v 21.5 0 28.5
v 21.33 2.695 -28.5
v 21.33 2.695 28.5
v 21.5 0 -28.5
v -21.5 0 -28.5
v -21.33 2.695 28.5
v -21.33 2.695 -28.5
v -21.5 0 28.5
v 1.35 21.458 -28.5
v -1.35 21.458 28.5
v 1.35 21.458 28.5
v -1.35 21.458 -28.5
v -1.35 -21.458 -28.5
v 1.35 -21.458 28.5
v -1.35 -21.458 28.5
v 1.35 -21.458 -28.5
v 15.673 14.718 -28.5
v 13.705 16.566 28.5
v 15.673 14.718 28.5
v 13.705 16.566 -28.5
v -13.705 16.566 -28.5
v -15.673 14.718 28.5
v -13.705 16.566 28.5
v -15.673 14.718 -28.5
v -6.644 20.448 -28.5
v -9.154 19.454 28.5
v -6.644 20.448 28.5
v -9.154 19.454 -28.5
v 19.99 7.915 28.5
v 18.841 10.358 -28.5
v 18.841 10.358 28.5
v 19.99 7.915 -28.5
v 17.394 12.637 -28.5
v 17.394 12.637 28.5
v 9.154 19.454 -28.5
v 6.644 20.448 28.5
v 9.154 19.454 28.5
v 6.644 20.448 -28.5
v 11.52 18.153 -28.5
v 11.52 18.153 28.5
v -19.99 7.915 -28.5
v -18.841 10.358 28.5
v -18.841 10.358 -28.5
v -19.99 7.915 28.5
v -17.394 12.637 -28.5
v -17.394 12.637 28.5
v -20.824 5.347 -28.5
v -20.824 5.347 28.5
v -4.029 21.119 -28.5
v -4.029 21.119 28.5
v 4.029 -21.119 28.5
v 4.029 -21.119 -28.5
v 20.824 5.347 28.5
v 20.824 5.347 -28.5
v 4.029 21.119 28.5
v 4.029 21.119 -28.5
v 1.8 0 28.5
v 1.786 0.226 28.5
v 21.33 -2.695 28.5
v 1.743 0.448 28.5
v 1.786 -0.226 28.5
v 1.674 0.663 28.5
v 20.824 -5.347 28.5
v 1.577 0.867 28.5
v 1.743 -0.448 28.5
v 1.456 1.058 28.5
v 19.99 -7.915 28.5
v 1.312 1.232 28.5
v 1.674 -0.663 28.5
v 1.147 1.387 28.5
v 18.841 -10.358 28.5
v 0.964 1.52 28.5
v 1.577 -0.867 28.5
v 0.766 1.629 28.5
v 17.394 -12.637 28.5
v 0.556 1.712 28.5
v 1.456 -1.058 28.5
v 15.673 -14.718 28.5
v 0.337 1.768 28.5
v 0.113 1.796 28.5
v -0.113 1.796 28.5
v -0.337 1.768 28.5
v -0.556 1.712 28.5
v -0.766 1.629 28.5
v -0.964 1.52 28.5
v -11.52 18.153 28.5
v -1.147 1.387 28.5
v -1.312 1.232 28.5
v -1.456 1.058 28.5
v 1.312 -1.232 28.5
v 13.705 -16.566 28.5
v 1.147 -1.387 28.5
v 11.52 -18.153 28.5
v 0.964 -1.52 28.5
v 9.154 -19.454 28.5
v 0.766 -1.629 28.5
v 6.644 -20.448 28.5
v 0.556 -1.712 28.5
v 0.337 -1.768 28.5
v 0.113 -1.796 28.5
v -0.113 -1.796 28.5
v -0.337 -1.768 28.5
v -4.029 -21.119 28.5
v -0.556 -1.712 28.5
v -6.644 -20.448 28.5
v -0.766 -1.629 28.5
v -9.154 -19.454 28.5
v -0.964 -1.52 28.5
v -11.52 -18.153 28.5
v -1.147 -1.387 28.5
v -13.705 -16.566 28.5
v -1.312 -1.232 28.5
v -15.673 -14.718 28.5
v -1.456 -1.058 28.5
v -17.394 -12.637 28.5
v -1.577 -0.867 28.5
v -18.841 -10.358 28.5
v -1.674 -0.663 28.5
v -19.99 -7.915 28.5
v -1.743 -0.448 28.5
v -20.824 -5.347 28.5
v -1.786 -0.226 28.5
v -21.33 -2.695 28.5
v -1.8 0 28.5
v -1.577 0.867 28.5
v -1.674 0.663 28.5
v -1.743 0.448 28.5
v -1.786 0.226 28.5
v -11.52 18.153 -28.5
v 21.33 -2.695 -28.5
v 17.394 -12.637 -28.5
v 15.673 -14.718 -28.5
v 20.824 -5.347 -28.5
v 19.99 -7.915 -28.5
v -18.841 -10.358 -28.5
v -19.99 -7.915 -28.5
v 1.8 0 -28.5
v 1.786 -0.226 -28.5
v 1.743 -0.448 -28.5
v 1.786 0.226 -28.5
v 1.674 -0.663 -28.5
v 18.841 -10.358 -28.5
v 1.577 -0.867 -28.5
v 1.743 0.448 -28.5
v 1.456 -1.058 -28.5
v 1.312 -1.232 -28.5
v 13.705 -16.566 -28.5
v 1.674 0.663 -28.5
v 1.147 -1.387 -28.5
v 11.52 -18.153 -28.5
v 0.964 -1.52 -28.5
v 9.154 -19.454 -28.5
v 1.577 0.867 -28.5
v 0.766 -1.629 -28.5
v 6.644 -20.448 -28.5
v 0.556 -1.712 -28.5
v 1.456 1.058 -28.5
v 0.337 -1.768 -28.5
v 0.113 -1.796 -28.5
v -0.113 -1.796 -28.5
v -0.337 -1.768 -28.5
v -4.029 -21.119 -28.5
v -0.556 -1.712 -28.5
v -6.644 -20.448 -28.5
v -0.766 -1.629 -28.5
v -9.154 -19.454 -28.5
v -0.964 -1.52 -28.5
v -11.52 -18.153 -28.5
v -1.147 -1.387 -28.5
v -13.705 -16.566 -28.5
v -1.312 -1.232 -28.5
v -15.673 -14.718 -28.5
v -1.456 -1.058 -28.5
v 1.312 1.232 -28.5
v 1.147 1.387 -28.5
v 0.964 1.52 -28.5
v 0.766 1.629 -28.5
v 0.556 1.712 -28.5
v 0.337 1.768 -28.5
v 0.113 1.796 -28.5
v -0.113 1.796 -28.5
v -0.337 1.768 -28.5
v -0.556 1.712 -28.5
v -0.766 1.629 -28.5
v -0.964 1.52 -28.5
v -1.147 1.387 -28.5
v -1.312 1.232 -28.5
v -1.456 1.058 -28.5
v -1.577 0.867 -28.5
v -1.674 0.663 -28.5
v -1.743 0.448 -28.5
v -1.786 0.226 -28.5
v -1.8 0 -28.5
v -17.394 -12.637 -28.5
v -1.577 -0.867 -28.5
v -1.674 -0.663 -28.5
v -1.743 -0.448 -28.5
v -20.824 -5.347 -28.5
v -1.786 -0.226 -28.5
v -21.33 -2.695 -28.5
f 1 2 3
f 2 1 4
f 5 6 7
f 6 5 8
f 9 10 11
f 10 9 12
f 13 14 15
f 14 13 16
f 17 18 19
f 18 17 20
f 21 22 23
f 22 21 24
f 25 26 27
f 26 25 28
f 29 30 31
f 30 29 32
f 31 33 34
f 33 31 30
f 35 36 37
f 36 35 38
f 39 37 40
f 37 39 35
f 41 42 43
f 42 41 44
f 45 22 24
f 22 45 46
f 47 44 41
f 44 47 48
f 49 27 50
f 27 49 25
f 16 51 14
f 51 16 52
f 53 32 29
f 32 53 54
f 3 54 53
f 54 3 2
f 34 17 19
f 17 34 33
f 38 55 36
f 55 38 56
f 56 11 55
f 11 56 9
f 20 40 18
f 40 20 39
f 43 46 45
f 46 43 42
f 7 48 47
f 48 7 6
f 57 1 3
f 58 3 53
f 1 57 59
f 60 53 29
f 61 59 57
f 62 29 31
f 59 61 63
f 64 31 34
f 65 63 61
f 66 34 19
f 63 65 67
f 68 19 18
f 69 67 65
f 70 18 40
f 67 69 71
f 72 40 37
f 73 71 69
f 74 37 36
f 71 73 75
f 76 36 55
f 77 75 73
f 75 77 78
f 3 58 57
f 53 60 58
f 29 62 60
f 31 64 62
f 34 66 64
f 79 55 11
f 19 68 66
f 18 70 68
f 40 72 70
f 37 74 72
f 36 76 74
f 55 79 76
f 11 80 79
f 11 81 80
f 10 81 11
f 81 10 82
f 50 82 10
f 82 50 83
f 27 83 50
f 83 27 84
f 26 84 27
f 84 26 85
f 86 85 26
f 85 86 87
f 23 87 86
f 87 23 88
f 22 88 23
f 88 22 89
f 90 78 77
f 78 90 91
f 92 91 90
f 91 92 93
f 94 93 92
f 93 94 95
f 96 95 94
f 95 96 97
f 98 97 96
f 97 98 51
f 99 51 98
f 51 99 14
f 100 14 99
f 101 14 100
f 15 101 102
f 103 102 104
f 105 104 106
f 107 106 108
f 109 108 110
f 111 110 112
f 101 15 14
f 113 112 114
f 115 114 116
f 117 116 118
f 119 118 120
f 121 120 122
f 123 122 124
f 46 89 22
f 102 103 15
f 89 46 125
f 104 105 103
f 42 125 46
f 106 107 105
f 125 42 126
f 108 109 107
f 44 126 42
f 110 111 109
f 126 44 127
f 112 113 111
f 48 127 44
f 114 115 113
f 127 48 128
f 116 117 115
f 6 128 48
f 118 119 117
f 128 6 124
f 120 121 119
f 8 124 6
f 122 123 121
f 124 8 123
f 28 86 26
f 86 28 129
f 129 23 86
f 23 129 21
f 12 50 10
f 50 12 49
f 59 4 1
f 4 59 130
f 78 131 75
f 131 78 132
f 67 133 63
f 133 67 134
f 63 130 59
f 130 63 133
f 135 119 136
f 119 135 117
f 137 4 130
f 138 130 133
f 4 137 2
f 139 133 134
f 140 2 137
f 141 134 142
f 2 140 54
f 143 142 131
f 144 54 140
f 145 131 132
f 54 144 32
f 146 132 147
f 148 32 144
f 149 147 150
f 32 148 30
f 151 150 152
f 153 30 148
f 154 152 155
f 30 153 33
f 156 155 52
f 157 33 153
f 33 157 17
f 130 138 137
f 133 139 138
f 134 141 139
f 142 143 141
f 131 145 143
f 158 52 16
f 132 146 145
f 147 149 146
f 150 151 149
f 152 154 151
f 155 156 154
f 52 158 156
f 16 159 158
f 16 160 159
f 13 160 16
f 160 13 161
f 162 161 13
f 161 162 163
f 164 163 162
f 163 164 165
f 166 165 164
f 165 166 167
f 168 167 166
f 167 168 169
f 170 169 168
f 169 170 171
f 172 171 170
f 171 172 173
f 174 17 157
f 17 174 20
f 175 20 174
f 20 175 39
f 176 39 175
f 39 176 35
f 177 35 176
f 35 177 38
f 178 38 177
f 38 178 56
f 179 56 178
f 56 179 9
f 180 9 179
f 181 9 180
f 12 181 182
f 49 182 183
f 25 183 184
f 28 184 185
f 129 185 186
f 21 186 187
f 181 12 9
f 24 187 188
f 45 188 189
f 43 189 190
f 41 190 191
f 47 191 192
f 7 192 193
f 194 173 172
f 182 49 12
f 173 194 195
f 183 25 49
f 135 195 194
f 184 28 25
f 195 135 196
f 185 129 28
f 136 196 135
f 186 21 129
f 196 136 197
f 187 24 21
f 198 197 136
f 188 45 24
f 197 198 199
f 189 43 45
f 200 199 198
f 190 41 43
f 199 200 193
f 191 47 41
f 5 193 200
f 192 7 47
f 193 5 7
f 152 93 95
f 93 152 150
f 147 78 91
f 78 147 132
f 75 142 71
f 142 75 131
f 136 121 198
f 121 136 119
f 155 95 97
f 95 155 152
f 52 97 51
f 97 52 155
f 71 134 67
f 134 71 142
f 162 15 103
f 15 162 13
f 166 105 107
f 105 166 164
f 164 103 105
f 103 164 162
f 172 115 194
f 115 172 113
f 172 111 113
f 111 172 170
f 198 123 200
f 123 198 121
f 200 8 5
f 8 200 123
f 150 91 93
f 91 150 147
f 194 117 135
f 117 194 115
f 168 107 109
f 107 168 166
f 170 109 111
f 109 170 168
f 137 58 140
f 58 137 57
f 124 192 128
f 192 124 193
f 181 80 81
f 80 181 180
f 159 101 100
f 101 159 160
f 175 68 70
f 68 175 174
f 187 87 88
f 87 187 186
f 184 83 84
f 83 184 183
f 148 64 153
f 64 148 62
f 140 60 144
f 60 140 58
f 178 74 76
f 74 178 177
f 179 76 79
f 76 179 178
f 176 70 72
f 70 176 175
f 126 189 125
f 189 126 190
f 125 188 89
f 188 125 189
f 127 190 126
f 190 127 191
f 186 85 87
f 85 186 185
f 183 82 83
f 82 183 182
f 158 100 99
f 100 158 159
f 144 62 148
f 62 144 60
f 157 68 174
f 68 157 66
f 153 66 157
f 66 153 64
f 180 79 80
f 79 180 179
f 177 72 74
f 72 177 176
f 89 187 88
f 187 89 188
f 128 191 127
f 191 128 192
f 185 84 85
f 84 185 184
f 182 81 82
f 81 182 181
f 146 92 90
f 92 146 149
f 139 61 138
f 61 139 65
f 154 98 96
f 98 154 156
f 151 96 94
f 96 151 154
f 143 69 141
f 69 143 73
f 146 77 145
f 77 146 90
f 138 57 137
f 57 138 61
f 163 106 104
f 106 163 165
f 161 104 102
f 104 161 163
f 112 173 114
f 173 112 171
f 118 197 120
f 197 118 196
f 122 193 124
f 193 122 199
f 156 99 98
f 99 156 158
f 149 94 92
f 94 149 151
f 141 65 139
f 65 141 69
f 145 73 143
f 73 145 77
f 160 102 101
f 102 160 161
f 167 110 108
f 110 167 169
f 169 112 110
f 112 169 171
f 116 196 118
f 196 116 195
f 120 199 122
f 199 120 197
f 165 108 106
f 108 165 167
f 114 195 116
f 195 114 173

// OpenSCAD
$fn = 50;


difference() {
	union() {
		translate(v = [0, 0, -28.5000000000]) {
			cylinder(h = 57, r = 21.5000000000);
		}
	}
	union() {
		translate(v = [0, 0, -100.0000000000]) {
			cylinder(h = 200, r = 1.8000000000);
		}
	}
}
